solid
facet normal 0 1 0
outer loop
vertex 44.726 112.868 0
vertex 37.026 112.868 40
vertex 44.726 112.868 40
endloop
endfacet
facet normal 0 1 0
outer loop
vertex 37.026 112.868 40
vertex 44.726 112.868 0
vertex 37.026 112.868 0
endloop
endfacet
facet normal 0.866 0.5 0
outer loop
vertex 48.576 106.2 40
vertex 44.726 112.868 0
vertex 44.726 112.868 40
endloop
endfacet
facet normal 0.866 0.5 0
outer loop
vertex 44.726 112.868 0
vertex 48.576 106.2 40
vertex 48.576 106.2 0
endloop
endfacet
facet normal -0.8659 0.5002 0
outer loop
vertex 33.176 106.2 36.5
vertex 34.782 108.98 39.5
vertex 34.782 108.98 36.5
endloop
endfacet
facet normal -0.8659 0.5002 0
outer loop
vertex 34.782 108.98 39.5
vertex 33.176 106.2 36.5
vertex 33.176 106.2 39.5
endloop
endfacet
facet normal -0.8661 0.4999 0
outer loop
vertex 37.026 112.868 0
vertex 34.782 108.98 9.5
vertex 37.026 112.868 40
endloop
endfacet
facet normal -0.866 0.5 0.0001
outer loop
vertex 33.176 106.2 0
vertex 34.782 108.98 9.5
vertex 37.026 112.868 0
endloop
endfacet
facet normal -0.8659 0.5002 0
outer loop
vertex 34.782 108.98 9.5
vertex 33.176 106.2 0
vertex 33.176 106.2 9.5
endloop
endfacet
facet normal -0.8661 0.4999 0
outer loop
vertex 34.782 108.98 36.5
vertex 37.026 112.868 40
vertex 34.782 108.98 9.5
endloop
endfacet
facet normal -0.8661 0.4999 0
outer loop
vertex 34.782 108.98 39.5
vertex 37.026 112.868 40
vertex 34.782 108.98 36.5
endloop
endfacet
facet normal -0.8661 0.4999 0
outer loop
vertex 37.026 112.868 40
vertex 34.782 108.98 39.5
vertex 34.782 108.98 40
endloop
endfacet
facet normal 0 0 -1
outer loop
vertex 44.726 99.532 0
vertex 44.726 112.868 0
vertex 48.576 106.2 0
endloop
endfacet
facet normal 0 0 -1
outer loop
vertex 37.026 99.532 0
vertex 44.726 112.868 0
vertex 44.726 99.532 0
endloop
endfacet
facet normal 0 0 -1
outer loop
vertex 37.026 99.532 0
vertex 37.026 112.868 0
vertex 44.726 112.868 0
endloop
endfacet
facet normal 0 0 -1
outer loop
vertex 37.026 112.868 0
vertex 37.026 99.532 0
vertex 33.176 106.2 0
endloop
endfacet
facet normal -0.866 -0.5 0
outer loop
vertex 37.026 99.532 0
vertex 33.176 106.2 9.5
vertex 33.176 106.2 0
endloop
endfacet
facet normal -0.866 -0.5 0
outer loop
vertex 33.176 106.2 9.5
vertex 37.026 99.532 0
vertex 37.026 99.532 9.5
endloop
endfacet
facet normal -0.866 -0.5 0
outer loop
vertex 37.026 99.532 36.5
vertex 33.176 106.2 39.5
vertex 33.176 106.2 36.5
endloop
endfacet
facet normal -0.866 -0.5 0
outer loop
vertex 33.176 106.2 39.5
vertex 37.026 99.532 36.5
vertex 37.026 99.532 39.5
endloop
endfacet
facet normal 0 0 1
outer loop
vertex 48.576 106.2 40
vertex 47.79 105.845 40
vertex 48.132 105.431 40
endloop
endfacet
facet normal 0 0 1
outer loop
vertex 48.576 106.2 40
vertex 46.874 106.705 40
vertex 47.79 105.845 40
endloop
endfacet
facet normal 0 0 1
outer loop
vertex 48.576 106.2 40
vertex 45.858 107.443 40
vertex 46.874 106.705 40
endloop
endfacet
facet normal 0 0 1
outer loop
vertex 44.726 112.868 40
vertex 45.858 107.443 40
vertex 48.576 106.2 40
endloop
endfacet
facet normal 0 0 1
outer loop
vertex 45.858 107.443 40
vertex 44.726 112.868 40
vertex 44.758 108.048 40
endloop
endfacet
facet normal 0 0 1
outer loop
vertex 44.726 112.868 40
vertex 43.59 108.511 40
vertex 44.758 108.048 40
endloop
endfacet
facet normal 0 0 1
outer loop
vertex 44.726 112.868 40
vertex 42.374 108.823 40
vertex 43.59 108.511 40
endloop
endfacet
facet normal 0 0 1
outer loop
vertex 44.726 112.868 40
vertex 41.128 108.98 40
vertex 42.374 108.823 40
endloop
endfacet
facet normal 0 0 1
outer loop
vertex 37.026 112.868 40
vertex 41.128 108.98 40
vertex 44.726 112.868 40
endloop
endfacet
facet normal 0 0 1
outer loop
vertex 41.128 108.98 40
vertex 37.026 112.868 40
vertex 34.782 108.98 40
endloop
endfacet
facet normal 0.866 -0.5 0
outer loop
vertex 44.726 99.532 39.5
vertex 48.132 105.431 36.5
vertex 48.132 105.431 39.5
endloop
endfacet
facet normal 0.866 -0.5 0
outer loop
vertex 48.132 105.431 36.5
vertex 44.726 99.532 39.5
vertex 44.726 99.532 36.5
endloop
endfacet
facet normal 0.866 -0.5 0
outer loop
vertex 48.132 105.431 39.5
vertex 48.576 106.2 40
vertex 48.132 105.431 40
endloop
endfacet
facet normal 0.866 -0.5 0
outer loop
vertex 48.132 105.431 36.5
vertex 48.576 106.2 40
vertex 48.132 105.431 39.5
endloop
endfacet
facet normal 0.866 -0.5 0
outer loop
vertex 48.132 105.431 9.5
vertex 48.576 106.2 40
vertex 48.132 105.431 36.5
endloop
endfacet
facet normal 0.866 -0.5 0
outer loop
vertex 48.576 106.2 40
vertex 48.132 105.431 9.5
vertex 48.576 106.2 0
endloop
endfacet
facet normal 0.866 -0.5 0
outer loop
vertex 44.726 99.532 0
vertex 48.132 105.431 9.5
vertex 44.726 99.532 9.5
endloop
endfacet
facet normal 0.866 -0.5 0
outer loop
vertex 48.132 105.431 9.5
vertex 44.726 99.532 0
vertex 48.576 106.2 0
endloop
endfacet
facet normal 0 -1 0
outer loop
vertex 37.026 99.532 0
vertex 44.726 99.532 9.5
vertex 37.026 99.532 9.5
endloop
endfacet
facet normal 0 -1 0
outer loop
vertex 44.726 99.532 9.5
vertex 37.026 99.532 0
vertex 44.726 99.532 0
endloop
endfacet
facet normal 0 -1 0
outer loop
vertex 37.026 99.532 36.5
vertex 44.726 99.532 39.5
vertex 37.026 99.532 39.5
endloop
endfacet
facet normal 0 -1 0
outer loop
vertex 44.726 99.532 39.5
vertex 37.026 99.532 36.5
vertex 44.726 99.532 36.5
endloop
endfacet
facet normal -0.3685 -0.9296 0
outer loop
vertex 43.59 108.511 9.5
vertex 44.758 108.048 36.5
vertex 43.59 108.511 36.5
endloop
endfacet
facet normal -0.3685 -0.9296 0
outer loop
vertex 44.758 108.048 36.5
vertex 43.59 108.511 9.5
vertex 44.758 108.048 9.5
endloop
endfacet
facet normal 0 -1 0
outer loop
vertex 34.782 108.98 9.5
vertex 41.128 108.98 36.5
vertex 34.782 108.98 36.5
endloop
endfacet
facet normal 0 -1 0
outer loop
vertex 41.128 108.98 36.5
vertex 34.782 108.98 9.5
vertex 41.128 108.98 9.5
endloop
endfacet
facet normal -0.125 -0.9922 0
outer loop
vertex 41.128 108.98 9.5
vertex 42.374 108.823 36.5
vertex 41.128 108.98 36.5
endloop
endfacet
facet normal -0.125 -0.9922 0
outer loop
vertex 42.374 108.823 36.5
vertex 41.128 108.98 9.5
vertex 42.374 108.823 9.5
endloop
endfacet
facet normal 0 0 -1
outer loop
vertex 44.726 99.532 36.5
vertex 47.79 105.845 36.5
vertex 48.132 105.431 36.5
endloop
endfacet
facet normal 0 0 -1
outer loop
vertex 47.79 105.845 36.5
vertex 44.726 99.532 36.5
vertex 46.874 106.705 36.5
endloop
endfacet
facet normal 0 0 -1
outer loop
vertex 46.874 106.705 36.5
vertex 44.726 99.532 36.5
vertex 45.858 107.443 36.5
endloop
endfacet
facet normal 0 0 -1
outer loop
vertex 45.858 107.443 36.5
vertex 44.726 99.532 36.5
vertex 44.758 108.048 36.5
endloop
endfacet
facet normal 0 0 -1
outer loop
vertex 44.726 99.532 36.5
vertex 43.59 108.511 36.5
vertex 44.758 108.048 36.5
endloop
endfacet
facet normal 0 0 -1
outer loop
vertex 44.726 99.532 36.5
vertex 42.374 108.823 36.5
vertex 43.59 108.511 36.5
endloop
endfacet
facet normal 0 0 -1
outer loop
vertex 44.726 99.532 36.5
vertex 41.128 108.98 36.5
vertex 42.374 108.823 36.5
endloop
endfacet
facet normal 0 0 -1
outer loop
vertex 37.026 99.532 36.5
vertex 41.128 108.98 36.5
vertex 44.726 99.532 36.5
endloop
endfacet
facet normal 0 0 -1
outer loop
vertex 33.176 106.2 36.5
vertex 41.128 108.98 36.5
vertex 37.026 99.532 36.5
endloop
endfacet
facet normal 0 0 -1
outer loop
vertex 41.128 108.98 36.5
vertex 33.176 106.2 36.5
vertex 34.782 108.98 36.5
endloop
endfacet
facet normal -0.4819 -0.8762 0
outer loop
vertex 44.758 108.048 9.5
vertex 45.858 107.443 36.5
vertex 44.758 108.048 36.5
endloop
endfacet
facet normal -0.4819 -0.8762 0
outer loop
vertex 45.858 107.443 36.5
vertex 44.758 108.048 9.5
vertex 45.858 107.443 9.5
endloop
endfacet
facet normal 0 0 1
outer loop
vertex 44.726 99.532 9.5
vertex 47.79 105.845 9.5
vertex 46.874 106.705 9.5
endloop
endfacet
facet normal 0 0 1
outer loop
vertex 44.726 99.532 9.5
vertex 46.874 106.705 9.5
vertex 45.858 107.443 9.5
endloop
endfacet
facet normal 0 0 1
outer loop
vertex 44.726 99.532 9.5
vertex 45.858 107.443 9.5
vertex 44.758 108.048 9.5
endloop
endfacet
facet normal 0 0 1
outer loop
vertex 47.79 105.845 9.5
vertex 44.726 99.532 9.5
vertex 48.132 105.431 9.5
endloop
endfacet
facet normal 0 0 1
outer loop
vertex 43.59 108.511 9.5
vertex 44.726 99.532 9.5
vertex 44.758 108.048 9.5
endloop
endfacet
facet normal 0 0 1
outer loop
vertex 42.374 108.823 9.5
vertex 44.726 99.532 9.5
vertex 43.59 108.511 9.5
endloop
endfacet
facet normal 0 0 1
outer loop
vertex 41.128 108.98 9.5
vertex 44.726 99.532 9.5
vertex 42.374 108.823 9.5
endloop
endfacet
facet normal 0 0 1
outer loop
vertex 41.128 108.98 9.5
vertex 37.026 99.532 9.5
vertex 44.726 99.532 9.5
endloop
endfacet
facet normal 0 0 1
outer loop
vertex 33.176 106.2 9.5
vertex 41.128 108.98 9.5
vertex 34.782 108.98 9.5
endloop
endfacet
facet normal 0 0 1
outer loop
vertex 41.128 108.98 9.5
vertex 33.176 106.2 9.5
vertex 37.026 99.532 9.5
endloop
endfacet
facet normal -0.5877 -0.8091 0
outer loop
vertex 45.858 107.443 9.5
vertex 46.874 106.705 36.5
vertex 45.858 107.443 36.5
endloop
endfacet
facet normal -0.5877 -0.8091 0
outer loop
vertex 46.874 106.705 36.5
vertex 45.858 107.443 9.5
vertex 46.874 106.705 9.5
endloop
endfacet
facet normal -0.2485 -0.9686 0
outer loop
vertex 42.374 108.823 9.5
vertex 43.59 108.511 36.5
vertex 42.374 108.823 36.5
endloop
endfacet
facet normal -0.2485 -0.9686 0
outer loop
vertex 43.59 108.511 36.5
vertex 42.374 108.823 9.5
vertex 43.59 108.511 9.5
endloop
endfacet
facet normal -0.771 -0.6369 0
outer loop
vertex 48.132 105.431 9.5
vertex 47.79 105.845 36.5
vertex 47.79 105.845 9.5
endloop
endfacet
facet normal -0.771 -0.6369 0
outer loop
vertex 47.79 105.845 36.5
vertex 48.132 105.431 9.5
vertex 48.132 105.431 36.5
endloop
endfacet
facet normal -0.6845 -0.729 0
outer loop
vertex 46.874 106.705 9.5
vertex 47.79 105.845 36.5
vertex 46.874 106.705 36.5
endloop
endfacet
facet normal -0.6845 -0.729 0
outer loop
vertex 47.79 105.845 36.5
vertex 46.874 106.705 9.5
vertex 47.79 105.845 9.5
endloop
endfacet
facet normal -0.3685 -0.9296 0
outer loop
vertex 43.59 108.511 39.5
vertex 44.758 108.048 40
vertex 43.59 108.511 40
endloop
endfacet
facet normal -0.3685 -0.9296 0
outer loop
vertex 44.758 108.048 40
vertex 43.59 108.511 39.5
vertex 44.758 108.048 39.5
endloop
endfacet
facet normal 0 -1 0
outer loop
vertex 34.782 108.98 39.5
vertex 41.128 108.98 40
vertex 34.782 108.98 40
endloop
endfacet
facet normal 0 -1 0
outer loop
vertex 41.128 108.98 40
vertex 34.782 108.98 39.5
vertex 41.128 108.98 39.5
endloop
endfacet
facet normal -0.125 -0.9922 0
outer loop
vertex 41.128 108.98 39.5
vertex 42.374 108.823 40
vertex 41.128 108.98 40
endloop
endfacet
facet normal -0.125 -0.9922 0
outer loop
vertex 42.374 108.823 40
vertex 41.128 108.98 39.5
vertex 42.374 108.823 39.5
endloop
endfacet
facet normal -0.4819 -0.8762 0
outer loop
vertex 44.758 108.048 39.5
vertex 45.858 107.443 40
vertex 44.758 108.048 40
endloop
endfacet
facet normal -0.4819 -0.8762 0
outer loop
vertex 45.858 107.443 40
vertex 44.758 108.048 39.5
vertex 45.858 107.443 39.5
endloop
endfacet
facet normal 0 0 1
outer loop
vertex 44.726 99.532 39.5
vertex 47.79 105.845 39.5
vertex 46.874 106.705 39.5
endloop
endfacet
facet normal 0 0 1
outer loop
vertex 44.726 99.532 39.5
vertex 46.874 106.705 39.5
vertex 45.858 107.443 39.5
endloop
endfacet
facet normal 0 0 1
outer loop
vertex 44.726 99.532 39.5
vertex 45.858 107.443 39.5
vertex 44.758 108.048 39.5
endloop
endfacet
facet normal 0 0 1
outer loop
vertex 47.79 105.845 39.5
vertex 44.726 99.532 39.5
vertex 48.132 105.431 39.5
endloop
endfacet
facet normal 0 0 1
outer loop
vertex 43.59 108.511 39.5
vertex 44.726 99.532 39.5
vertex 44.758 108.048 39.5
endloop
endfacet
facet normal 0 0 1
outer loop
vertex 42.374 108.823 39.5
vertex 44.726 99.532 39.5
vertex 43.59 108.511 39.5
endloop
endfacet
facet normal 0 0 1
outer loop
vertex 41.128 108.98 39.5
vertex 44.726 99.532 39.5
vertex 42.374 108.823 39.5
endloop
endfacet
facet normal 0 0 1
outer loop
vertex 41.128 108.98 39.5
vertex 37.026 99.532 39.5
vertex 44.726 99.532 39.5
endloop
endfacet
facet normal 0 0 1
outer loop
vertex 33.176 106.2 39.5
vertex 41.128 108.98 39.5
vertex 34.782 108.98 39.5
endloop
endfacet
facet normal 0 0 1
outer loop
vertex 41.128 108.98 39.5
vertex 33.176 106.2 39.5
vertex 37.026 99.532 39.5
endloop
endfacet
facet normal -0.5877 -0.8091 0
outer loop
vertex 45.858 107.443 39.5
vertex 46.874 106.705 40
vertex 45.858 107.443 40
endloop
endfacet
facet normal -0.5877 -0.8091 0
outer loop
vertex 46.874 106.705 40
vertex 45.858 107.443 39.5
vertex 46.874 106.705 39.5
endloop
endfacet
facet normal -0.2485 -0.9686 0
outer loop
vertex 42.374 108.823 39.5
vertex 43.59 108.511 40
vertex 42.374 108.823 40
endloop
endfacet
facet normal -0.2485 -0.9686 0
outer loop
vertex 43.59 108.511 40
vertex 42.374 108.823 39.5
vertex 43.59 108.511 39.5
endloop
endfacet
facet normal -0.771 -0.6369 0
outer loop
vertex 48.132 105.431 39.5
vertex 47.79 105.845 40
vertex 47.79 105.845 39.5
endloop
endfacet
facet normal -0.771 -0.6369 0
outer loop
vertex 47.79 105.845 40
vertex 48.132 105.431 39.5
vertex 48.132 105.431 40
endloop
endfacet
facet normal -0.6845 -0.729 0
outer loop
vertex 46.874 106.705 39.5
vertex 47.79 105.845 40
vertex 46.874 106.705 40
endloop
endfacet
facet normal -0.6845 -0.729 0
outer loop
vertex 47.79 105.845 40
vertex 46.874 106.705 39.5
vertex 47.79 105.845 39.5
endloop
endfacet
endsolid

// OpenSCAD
// file: _honeycomb_element.scad
$fn = 50;

radius = 13.6;
diameter = radius * 2;

h_inner = 10;
r_inner = h_inner * 2 / sqrt(3);

h_outer = 10 + 1.8;
r_outer = h_outer * 2 / sqrt(3);

h_thin = 10 + 1;
r_thin = h_thin * 2 / sqrt(3);

total_height = 8;

small_value = 0.1;

clips_height = 5;
clips_offset = 0.5;
clips_side_offset = 0.00;

module basic_polygon() {
  polygon(
    [
      [r_outer, total_height],
      [r_outer, 0],
      [r_inner + 0.5, 0],
      [r_inner, 0.5],
      [r_inner, total_height - 3],
      [r_inner + 1, total_height - 2],
      [r_inner + 1, total_height],
    ]
  );
}

module basic_model() {
  rotate_extrude($fn=6) {
    basic_polygon();
  }
}

module panel_with_clips(pin_1 = false, pin_2 = false, pin_3 = false, pin_4 = false, pin_5 = false, pin_6 = false, slot_1 = false, slot_2 = false, slot_3 = false, slot_4 = false, slot_5 = false, slot_6 = false) {

  difference() {
    basic_model();

    if (slot_1) {
      rotate([0, 0, 0])
        translate([0, -h_outer * 2, total_height - (clips_height + clips_offset) / 2])
          linear_extrude(height=clips_height + clips_offset, center=true)
            polygon([[clips_side_offset, h_outer / 2], [-clips_side_offset, h_outer / 2], [-r_outer / 2 - clips_side_offset, h_outer * 1.5], [r_outer / 2 + clips_side_offset, h_outer * 1.5]]);
    }

    if (slot_2) {
      rotate([0, 0, 60])
        translate([0, -h_outer * 2, total_height - (clips_height + clips_offset) / 2])
          linear_extrude(height=clips_height + clips_offset, center=true)
            polygon([[clips_side_offset, h_outer / 2], [-clips_side_offset, h_outer / 2], [-r_outer / 2 - clips_side_offset, h_outer * 1.5], [r_outer / 2 + clips_side_offset, h_outer * 1.5]]);
    }

    if (slot_3) {
      rotate([0, 0, 120])
        translate([0, -h_outer * 2, total_height - (clips_height + clips_offset) / 2])
          linear_extrude(height=clips_height + clips_offset, center=true)
            polygon([[clips_side_offset, h_outer / 2], [-clips_side_offset, h_outer / 2], [-r_outer / 2 - clips_side_offset, h_outer * 1.5], [r_outer / 2 + clips_side_offset, h_outer * 1.5]]);
    }

    if (slot_4) {
      rotate([0, 0, 180])
        translate([0, -h_outer * 2, total_height - (clips_height + clips_offset) / 2])
          linear_extrude(height=clips_height + clips_offset, center=true)
            polygon([[clips_side_offset, h_outer / 2], [-clips_side_offset, h_outer / 2], [-r_outer / 2 - clips_side_offset, h_outer * 1.5], [r_outer / 2 + clips_side_offset, h_outer * 1.5]]);
    }

    if (slot_5) {
      rotate([0, 0, 240])
        translate([0, -h_outer * 2, total_height - (clips_height + clips_offset) / 2])
          linear_extrude(height=clips_height + clips_offset, center=true)
            polygon([[clips_side_offset, h_outer / 2], [-clips_side_offset, h_outer / 2], [-r_outer / 2 - clips_side_offset, h_outer * 1.5], [r_outer / 2 + clips_side_offset, h_outer * 1.5]]);
    }

    if (slot_6) {
      rotate([0, 0, 300])
        translate([0, -h_outer * 2, total_height - (clips_height + clips_offset) / 2])
          linear_extrude(height=clips_height + clips_offset, center=true)
            polygon([[clips_side_offset, h_outer / 2], [-clips_side_offset, h_outer / 2], [-r_outer / 2 - clips_side_offset, h_outer * 1.5], [r_outer / 2 + clips_side_offset, h_outer * 1.5]]);
    }
  }

  if (pin_1) {
    intersection() {
      translate([0, -h_outer * 2, 0])
        basic_model();
      translate([0, 0, total_height - clips_height / 2]) {
        rotate([0, 0, -180])
          linear_extrude(height=clips_height, center=true)
            polygon([[0, h_outer / 2], [-r_outer / 2, h_outer * 1.5], [r_outer / 2, h_outer * 1.5]]);
      }
    }
  }

  if (pin_2) {
    intersection() {
      translate([r_outer * 1.5, -h_outer, 0])
        basic_model();
      translate([0, 0, total_height - clips_height / 2]) {
        rotate([0, 0, -120])
          linear_extrude(height=clips_height, center=true)
            polygon([[0, h_outer / 2], [-r_outer / 2, h_outer * 1.5], [r_outer / 2, h_outer * 1.5]]);
      }
    }
  }

  if (pin_3) {
    intersection() {
      translate([r_outer * 1.5, h_outer, 0])
        basic_model();
      translate([0, 0, total_height - clips_height / 2]) {
        rotate([0, 0, -60])
          linear_extrude(height=clips_height, center=true)
            polygon([[0, h_outer / 2], [-r_outer / 2, h_outer * 1.5], [r_outer / 2, h_outer * 1.5]]);
      }
    }
  }

  if (pin_4) {
    intersection() {
      translate([0, h_outer * 2, 0])
        basic_model();

      translate([0, 0, total_height - clips_height / 2]) {
        linear_extrude(height=clips_height, center=true)
          polygon([[0, h_outer / 2], [-r_outer / 2, h_outer * 1.5], [r_outer / 2, h_outer * 1.5]]);
      }
    }
  }

  if (pin_5) {
    intersection() {
      translate([-r_outer * 1.5, h_outer, 0])
        basic_model();
      translate([0, 0, total_height - clips_height / 2]) {
        rotate([0, 0, 60])
          linear_extrude(height=clips_height, center=true)
            polygon([[0, h_outer / 2], [-r_outer / 2, h_outer * 1.5], [r_outer / 2, h_outer * 1.5]]);
      }
    }
  }

  if (pin_6) {
    intersection() {
      translate([-r_outer * 1.5, -h_outer, 0])
        basic_model();

      translate([0, 0, total_height - clips_height / 2]) {
        rotate([0, 0, 120])
          linear_extrude(height=clips_height, center=true)
            polygon([[0, h_outer / 2], [-r_outer / 2, h_outer * 1.5], [r_outer / 2, h_outer * 1.5]]);
      }
    }
  }
}

// end _honeycomb_element.scad
// main file
$fn = 50;


h_outer = 10+1.8;
r_outer = h_outer * 2/sqrt(3);




use <_honeycomb_element.scad>;


module panel_9x9() {
    for (i = [0:8]) {
        for (j = [0:8]) {
            if (j%2==0) {
               translate([r_outer*1.5*j, h_outer+h_outer*2*i, 0])
                  panel_with_clips(
                    slot_1 = i == 0,
                    slot_2 = j == 8,               
                    slot_3 = j == 8,  
                    pin_3 = i == 8 && j != 8,    
                    pin_4 = i == 8,
                    pin_5 = i == 8 || j == 0,
                    pin_6 = j == 0
                    
                  );
            } else {
               translate([r_outer*1.5*j, h_outer*2*i, 0])
                  panel_with_clips(
                    slot_1 = i == 0,
                    slot_2 = i == 0,
                    pin_4 = i == 8,
                    slot_6 = i == 0
                  );
            }
        }
    }
}

//panel_9x9();



length_inner = 9;
length_outer = 5;
length_center = 18;
length_total = 40;
inner_diametr = 15.4;

deep_offset = -3;


module plug() {
    translate([0,0,length_total/2]) {
        cylinder(r=inner_diametr/2, h=length_total, center=true, $fn=6);
    }
} 

module rounter() {
   linear_extrude(27, center=true) {
       minkowski() {
          square([59-20, 100-20], center=true);
            circle(r=10);
       }
    }
}

difference() {

union() {
    /*
  translate([0*r_outer,h_outer,0]) {
    plug();
  }
    
  
  
  translate([0*r_outer,h_outer*9,0]) {
    plug();
  }
    
  
  
  translate([3*r_outer,h_outer,0]) {
    plug();
  }
    */
  
  translate([3*r_outer,h_outer*9,0]) {
    plug();
  }
  }

  translate([21,59,length_center/2+length_inner+5]) {
    //cube([59, 100, 27], center=true);
    rounter();  
  }
  
  translate([21,59,length_center/2+length_inner+5+30]) {
    rounter();  
  }
}
